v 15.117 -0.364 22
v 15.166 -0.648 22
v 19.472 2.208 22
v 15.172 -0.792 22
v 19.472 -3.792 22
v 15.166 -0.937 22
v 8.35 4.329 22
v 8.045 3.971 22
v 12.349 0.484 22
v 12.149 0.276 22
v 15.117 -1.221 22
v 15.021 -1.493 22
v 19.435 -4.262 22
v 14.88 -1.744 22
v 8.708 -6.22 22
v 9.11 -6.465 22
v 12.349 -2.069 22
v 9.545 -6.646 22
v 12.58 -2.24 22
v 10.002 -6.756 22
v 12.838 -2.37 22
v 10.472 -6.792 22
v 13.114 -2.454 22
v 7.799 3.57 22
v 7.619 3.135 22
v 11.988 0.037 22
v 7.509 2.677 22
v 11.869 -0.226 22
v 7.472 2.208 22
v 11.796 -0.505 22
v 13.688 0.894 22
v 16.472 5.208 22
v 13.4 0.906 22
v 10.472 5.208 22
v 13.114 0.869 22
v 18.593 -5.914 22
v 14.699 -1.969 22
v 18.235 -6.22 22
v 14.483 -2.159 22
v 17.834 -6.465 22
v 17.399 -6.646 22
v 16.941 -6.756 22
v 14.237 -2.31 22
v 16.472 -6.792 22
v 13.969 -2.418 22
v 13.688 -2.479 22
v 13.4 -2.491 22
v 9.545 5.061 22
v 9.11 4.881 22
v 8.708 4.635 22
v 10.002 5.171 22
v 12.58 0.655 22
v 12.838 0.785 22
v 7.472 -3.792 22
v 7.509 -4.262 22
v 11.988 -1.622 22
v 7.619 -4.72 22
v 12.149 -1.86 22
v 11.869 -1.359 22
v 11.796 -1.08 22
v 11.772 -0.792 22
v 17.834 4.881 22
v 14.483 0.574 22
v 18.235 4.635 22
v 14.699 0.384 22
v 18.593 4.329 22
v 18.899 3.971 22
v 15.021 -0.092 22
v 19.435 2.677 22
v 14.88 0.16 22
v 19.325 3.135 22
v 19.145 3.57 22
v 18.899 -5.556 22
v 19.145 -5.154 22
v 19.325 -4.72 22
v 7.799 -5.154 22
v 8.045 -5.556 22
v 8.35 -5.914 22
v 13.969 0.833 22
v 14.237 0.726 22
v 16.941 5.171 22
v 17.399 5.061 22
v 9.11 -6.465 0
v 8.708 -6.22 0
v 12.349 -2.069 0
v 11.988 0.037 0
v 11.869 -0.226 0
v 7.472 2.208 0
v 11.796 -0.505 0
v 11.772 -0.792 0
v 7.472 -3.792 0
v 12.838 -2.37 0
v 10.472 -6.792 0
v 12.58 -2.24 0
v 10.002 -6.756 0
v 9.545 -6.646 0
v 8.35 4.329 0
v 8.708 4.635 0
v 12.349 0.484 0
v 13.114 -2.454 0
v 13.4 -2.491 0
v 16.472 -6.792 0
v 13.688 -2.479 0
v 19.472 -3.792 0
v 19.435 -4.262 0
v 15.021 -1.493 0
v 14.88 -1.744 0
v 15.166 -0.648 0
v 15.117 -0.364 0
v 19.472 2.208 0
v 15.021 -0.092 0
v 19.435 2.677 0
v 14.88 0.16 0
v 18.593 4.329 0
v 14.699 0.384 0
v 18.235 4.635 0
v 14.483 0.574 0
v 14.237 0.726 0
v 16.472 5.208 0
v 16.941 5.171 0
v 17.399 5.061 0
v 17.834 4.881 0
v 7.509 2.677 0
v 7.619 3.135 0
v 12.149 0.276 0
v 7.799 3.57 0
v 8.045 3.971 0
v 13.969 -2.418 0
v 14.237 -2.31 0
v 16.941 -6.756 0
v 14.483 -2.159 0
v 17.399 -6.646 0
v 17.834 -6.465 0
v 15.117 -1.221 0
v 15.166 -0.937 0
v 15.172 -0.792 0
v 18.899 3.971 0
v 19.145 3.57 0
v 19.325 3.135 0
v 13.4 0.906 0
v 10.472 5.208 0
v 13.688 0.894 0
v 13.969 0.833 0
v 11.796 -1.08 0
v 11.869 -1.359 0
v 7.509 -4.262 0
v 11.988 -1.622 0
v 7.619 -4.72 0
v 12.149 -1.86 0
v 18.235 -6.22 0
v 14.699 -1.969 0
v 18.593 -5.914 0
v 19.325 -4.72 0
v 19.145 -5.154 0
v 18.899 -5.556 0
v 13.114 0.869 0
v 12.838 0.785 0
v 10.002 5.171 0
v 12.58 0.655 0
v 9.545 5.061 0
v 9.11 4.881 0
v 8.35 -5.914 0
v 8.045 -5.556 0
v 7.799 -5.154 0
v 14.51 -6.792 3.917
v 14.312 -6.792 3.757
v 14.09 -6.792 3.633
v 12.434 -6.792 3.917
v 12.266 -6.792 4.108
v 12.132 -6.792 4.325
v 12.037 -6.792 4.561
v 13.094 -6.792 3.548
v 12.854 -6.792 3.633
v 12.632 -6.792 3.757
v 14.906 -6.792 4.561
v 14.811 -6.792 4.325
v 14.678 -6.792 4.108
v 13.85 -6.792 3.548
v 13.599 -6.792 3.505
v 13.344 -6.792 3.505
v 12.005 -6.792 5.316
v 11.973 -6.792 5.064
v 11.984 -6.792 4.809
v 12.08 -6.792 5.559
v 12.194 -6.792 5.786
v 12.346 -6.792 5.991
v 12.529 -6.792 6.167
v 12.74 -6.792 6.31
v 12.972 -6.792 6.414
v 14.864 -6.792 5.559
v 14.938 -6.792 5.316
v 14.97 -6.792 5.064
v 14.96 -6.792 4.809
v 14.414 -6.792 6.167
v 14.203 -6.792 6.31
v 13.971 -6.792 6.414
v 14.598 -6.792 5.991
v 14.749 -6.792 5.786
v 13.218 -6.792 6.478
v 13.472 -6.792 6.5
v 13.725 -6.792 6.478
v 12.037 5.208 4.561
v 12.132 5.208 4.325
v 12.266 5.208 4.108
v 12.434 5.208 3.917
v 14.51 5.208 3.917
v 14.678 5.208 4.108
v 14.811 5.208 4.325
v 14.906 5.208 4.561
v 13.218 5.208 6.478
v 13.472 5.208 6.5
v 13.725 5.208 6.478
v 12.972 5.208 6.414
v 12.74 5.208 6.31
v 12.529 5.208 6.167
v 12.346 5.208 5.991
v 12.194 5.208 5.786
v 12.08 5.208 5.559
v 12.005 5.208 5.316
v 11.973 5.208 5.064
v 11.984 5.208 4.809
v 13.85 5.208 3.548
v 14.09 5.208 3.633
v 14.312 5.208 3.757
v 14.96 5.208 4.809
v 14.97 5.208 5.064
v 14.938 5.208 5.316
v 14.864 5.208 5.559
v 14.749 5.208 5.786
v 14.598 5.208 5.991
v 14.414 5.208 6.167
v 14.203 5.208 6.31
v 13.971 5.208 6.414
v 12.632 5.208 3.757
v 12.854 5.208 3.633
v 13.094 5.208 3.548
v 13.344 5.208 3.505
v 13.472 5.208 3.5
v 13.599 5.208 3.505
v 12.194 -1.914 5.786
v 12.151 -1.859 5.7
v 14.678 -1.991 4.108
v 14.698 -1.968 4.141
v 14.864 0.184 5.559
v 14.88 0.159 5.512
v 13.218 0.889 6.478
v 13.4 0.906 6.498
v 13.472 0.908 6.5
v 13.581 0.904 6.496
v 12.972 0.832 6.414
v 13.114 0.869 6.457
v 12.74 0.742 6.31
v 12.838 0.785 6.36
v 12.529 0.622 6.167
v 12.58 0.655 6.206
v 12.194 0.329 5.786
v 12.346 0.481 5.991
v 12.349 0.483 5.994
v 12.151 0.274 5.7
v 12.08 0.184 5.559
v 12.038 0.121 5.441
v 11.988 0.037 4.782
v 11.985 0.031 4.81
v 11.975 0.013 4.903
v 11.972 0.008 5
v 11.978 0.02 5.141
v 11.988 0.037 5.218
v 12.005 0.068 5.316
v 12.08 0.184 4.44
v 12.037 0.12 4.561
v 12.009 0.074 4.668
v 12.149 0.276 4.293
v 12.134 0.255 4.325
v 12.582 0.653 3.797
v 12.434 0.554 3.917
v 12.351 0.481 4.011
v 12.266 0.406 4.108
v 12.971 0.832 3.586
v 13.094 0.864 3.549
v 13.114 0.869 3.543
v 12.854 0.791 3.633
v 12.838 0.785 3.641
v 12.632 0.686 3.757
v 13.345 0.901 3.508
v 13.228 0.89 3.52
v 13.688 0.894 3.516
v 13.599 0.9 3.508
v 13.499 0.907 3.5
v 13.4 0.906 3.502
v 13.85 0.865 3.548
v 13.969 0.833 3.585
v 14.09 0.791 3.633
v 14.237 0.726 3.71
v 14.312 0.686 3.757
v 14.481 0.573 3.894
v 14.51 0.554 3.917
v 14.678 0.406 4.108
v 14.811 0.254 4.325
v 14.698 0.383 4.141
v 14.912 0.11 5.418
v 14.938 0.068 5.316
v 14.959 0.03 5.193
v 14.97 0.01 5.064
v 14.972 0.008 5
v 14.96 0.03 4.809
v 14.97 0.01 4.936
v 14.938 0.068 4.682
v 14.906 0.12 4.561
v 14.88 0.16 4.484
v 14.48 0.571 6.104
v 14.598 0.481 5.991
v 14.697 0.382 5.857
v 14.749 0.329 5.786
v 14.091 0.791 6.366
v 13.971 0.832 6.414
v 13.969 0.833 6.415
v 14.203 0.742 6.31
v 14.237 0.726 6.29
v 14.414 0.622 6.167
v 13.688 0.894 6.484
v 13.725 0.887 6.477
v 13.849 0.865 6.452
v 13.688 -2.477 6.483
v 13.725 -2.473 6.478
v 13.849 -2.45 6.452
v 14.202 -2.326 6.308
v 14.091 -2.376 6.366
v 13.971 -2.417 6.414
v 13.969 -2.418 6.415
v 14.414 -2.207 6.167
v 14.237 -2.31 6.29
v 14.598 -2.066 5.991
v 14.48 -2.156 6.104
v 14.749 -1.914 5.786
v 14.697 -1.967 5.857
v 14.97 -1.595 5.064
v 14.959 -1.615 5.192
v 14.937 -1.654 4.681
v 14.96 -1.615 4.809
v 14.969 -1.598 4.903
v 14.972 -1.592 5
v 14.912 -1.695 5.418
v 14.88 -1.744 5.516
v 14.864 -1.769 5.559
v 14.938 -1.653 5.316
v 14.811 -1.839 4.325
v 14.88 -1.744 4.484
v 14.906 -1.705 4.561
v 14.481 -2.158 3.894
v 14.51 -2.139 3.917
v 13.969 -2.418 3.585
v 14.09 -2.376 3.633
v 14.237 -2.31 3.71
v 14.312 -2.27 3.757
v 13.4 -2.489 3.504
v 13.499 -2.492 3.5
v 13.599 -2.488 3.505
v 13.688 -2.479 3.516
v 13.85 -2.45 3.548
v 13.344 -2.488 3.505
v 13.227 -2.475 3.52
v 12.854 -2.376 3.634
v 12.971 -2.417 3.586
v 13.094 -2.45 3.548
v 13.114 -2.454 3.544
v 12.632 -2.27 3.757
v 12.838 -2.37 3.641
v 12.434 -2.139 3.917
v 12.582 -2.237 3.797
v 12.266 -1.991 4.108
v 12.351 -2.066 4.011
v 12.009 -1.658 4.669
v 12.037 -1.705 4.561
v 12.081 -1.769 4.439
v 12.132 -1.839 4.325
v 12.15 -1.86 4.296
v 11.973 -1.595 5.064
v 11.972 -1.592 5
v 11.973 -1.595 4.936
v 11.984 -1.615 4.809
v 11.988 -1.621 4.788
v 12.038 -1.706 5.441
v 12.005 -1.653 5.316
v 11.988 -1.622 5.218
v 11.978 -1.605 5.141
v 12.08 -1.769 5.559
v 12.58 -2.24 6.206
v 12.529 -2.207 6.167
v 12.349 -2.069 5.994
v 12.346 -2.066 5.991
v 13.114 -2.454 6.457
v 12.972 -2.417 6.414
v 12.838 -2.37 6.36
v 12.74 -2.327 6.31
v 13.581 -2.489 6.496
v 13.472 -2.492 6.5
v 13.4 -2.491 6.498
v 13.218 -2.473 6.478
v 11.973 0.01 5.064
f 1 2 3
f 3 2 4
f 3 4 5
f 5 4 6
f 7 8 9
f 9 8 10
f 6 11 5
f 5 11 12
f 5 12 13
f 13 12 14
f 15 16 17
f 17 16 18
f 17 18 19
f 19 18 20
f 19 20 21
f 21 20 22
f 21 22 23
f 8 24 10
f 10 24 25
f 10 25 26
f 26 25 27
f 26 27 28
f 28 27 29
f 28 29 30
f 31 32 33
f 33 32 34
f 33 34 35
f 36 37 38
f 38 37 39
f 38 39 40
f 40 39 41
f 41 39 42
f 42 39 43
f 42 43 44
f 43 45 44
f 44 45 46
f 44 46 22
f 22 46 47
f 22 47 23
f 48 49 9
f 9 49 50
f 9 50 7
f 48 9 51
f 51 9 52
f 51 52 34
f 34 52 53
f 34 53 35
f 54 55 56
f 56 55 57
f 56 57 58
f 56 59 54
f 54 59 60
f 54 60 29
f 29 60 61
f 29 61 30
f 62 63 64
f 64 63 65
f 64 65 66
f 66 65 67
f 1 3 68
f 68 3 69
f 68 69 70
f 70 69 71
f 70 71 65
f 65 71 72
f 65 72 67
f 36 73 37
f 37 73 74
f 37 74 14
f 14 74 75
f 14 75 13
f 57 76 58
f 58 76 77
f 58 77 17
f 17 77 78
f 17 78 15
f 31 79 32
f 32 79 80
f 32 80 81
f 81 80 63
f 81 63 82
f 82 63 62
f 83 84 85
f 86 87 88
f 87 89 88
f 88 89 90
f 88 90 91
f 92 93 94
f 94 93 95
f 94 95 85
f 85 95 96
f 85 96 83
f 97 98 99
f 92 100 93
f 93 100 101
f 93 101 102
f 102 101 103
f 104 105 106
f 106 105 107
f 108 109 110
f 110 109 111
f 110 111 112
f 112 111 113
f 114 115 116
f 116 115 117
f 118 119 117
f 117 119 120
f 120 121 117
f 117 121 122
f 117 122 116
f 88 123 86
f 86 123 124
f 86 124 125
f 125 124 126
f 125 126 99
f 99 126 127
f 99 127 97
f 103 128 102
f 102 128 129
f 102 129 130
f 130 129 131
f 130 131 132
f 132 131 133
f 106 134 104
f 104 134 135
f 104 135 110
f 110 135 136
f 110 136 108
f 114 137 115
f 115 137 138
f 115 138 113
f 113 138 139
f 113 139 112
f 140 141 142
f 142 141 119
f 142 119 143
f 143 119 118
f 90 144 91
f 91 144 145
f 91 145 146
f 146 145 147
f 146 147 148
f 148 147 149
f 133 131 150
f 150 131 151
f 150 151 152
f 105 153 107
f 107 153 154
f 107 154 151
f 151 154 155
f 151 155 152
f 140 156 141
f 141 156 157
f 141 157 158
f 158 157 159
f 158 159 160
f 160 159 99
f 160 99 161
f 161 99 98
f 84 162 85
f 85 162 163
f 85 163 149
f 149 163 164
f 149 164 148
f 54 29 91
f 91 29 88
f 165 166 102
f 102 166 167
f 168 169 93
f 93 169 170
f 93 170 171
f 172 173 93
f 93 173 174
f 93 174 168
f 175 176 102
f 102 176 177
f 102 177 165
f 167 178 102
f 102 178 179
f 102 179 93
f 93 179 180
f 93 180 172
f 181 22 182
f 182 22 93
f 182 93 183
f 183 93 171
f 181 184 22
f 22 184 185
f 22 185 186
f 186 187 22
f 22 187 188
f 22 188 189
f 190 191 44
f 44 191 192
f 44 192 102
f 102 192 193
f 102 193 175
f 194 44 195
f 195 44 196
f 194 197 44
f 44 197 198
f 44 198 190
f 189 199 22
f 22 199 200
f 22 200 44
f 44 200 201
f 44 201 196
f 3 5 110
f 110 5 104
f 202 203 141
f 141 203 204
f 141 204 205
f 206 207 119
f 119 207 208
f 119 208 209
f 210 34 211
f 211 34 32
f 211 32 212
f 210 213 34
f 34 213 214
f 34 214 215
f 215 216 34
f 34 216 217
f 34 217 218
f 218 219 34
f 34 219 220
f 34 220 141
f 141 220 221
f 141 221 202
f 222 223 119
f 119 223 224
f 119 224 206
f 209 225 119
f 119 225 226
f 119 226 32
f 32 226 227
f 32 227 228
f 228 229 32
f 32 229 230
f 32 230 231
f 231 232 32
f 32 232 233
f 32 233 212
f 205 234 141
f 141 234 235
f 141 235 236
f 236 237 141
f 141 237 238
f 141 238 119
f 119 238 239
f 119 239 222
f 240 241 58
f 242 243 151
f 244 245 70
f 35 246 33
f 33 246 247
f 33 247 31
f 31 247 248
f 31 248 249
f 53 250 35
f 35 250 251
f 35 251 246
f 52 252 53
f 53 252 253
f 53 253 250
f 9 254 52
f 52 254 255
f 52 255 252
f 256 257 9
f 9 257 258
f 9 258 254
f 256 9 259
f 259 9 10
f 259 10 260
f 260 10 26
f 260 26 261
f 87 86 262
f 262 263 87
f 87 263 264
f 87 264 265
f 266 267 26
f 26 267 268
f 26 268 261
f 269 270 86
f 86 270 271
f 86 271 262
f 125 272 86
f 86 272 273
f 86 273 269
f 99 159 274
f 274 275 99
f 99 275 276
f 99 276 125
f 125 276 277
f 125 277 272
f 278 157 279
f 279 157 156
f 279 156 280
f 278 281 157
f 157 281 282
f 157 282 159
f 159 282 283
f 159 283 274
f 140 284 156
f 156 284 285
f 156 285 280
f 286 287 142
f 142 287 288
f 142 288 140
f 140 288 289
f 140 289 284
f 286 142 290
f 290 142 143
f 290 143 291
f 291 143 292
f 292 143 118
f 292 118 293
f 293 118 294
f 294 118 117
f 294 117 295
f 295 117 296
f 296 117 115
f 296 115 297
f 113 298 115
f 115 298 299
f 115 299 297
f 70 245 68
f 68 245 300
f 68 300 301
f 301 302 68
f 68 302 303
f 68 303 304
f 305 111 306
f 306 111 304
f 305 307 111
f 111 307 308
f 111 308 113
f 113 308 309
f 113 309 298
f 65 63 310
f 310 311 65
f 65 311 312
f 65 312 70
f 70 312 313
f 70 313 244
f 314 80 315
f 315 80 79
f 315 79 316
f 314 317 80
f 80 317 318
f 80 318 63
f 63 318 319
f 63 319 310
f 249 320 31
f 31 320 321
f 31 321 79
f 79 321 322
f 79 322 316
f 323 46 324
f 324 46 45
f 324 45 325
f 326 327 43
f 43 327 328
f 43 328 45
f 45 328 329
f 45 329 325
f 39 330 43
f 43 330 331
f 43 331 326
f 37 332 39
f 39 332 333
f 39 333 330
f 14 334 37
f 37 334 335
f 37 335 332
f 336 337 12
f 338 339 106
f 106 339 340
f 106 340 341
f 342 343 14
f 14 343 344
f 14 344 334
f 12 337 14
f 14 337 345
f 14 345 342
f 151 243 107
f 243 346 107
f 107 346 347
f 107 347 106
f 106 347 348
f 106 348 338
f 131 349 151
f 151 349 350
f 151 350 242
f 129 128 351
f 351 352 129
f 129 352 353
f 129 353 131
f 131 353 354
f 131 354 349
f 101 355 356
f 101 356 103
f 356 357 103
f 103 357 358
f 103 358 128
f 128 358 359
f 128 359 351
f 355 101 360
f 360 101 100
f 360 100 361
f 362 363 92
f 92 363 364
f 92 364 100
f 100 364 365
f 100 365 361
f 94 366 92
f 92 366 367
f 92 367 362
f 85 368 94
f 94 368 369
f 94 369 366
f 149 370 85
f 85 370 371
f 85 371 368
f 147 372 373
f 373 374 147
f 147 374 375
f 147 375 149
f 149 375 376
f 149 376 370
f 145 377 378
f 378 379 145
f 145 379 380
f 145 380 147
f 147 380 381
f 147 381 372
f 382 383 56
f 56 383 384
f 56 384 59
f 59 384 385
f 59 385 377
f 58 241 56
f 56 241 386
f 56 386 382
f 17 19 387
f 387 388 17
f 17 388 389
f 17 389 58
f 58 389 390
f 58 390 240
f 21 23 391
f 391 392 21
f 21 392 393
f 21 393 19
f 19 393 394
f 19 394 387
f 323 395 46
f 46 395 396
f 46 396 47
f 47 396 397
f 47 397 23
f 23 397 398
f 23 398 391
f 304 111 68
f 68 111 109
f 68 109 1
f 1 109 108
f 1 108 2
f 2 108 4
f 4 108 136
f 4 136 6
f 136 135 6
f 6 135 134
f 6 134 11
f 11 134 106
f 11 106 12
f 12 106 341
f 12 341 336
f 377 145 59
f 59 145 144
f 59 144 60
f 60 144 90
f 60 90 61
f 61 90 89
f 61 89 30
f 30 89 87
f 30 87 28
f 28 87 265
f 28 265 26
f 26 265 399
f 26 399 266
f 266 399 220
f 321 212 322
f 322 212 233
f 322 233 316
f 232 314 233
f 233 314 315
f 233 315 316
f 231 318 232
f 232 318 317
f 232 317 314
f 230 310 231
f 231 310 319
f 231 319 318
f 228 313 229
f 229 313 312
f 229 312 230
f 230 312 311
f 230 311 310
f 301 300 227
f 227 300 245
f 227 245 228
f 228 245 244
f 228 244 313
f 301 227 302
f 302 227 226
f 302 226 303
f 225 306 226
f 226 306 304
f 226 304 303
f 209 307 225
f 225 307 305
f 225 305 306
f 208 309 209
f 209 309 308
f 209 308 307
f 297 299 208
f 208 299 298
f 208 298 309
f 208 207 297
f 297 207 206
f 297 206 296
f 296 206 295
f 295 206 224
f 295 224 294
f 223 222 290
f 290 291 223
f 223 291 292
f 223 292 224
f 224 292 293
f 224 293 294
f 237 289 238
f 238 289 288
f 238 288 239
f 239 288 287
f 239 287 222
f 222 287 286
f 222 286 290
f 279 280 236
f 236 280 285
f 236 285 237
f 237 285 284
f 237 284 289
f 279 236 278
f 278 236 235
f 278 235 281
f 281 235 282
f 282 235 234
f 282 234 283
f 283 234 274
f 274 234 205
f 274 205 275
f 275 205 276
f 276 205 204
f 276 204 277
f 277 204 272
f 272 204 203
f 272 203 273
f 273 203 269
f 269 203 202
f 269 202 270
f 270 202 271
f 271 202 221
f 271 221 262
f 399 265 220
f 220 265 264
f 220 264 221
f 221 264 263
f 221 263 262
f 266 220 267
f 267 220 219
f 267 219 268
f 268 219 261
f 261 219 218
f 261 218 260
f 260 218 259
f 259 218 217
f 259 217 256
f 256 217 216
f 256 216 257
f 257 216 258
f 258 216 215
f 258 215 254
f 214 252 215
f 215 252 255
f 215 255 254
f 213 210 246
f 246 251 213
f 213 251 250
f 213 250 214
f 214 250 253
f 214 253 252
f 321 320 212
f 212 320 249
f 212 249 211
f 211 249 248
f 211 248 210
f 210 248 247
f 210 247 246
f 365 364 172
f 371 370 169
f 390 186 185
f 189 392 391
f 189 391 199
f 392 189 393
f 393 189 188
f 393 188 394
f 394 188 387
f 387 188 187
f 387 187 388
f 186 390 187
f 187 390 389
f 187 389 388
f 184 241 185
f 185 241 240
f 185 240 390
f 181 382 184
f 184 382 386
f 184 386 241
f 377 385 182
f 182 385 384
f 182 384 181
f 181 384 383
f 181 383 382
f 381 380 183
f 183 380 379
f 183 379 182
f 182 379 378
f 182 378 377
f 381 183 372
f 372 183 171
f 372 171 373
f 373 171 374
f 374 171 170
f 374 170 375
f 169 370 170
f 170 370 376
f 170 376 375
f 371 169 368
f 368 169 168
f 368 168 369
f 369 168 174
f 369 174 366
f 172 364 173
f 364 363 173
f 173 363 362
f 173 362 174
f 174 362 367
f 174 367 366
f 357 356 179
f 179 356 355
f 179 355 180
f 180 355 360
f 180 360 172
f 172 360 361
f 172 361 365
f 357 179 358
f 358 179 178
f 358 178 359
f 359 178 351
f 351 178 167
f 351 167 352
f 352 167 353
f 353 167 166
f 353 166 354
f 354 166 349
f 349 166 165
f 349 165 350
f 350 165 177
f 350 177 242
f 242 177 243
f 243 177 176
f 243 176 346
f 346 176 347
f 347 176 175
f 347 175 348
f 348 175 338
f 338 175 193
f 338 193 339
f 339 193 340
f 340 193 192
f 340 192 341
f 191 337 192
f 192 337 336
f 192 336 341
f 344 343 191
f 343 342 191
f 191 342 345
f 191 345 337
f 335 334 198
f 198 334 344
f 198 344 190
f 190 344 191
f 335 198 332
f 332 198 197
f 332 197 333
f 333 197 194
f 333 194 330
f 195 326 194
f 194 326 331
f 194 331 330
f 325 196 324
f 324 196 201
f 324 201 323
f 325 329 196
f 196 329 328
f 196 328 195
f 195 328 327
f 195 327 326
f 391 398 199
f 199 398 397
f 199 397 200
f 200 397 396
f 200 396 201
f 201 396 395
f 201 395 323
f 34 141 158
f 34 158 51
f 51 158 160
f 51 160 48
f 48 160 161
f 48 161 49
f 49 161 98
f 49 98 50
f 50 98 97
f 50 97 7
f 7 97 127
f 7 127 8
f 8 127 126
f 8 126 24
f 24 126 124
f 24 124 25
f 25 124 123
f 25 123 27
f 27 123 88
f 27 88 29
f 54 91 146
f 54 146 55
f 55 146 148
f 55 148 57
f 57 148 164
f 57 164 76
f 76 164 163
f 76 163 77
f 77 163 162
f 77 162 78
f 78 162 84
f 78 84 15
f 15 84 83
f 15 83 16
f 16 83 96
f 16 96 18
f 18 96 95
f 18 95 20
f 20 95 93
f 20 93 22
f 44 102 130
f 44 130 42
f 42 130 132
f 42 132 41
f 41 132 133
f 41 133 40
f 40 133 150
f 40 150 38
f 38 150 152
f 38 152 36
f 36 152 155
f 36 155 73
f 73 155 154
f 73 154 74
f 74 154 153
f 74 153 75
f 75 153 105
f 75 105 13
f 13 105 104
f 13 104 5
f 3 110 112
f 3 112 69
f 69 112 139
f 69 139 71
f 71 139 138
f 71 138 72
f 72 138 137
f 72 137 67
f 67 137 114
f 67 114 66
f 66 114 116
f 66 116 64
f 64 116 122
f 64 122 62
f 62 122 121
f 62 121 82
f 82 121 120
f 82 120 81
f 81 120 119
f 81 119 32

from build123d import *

# Parameters (mm, degrees)
ESBO_O1_W                  = 12
ESBO_O1_H                  = 12
ESBO_O1_R                  = 1.7
RESSALTO_EXTRUS_O1_DEPTH   = 22
ESBO_O2_R                  = 1.5
CORTE_EXTRUS_O1_DEPTH      = 7
CORTE_EXTRUS_O1_DEPTH_BACK = 10
FILETE2_R                  = 3
FILETE3_R                  = 3
FILETE4_R                  = 3
FILETE5_R                  = 3


with BuildPart() as part:
    # Esboço1 → Ressalto-extrusão1 (new body)
    with BuildSketch(Plane.XY):
        with Locations((13.471698113, -0.79245283)):
            Rectangle(ESBO_O1_W, ESBO_O1_H)
        with Locations((13.471698113, -0.79245283)):
            Circle(ESBO_O1_R, mode=Mode.SUBTRACT)
    extrude(amount=RESSALTO_EXTRUS_O1_DEPTH)

    # Esboço2 → Corte-extrusão1 (cut, two sides)
    with BuildSketch(Plane(origin=(0, 0, 0), x_dir=(1, 0, 0), z_dir=(0, 1, 0))) as corte_extrus_o1_sk:
        with Locations((13.471698113, -5)):
            Circle(ESBO_O2_R)
    extrude(amount=CORTE_EXTRUS_O1_DEPTH, mode=Mode.SUBTRACT)
    extrude(corte_extrus_o1_sk.sketch, amount=-CORTE_EXTRUS_O1_DEPTH_BACK, mode=Mode.SUBTRACT)

    # Filete2
    filete2_edges = [part.edges().sort_by_distance(p)[0] for p in [
        (7.471698113, 5.20754717, 11),
    ]]
    fillet(filete2_edges, radius=FILETE2_R)

    # Filete3
    filete3_edges = [part.edges().sort_by_distance(p)[0] for p in [
        (7.471698113, -6.79245283, 11),
    ]]
    fillet(filete3_edges, radius=FILETE3_R)

    # Filete4
    filete4_edges = [part.edges().sort_by_distance(p)[0] for p in [
        (19.471698113, -6.79245283, 11),
    ]]
    fillet(filete4_edges, radius=FILETE4_R)

    # Filete5
    filete5_edges = [part.edges().sort_by_distance(p)[0] for p in [
        (19.471698113, 5.20754717, 11),
    ]]
    fillet(filete5_edges, radius=FILETE5_R)


solid = part.part
